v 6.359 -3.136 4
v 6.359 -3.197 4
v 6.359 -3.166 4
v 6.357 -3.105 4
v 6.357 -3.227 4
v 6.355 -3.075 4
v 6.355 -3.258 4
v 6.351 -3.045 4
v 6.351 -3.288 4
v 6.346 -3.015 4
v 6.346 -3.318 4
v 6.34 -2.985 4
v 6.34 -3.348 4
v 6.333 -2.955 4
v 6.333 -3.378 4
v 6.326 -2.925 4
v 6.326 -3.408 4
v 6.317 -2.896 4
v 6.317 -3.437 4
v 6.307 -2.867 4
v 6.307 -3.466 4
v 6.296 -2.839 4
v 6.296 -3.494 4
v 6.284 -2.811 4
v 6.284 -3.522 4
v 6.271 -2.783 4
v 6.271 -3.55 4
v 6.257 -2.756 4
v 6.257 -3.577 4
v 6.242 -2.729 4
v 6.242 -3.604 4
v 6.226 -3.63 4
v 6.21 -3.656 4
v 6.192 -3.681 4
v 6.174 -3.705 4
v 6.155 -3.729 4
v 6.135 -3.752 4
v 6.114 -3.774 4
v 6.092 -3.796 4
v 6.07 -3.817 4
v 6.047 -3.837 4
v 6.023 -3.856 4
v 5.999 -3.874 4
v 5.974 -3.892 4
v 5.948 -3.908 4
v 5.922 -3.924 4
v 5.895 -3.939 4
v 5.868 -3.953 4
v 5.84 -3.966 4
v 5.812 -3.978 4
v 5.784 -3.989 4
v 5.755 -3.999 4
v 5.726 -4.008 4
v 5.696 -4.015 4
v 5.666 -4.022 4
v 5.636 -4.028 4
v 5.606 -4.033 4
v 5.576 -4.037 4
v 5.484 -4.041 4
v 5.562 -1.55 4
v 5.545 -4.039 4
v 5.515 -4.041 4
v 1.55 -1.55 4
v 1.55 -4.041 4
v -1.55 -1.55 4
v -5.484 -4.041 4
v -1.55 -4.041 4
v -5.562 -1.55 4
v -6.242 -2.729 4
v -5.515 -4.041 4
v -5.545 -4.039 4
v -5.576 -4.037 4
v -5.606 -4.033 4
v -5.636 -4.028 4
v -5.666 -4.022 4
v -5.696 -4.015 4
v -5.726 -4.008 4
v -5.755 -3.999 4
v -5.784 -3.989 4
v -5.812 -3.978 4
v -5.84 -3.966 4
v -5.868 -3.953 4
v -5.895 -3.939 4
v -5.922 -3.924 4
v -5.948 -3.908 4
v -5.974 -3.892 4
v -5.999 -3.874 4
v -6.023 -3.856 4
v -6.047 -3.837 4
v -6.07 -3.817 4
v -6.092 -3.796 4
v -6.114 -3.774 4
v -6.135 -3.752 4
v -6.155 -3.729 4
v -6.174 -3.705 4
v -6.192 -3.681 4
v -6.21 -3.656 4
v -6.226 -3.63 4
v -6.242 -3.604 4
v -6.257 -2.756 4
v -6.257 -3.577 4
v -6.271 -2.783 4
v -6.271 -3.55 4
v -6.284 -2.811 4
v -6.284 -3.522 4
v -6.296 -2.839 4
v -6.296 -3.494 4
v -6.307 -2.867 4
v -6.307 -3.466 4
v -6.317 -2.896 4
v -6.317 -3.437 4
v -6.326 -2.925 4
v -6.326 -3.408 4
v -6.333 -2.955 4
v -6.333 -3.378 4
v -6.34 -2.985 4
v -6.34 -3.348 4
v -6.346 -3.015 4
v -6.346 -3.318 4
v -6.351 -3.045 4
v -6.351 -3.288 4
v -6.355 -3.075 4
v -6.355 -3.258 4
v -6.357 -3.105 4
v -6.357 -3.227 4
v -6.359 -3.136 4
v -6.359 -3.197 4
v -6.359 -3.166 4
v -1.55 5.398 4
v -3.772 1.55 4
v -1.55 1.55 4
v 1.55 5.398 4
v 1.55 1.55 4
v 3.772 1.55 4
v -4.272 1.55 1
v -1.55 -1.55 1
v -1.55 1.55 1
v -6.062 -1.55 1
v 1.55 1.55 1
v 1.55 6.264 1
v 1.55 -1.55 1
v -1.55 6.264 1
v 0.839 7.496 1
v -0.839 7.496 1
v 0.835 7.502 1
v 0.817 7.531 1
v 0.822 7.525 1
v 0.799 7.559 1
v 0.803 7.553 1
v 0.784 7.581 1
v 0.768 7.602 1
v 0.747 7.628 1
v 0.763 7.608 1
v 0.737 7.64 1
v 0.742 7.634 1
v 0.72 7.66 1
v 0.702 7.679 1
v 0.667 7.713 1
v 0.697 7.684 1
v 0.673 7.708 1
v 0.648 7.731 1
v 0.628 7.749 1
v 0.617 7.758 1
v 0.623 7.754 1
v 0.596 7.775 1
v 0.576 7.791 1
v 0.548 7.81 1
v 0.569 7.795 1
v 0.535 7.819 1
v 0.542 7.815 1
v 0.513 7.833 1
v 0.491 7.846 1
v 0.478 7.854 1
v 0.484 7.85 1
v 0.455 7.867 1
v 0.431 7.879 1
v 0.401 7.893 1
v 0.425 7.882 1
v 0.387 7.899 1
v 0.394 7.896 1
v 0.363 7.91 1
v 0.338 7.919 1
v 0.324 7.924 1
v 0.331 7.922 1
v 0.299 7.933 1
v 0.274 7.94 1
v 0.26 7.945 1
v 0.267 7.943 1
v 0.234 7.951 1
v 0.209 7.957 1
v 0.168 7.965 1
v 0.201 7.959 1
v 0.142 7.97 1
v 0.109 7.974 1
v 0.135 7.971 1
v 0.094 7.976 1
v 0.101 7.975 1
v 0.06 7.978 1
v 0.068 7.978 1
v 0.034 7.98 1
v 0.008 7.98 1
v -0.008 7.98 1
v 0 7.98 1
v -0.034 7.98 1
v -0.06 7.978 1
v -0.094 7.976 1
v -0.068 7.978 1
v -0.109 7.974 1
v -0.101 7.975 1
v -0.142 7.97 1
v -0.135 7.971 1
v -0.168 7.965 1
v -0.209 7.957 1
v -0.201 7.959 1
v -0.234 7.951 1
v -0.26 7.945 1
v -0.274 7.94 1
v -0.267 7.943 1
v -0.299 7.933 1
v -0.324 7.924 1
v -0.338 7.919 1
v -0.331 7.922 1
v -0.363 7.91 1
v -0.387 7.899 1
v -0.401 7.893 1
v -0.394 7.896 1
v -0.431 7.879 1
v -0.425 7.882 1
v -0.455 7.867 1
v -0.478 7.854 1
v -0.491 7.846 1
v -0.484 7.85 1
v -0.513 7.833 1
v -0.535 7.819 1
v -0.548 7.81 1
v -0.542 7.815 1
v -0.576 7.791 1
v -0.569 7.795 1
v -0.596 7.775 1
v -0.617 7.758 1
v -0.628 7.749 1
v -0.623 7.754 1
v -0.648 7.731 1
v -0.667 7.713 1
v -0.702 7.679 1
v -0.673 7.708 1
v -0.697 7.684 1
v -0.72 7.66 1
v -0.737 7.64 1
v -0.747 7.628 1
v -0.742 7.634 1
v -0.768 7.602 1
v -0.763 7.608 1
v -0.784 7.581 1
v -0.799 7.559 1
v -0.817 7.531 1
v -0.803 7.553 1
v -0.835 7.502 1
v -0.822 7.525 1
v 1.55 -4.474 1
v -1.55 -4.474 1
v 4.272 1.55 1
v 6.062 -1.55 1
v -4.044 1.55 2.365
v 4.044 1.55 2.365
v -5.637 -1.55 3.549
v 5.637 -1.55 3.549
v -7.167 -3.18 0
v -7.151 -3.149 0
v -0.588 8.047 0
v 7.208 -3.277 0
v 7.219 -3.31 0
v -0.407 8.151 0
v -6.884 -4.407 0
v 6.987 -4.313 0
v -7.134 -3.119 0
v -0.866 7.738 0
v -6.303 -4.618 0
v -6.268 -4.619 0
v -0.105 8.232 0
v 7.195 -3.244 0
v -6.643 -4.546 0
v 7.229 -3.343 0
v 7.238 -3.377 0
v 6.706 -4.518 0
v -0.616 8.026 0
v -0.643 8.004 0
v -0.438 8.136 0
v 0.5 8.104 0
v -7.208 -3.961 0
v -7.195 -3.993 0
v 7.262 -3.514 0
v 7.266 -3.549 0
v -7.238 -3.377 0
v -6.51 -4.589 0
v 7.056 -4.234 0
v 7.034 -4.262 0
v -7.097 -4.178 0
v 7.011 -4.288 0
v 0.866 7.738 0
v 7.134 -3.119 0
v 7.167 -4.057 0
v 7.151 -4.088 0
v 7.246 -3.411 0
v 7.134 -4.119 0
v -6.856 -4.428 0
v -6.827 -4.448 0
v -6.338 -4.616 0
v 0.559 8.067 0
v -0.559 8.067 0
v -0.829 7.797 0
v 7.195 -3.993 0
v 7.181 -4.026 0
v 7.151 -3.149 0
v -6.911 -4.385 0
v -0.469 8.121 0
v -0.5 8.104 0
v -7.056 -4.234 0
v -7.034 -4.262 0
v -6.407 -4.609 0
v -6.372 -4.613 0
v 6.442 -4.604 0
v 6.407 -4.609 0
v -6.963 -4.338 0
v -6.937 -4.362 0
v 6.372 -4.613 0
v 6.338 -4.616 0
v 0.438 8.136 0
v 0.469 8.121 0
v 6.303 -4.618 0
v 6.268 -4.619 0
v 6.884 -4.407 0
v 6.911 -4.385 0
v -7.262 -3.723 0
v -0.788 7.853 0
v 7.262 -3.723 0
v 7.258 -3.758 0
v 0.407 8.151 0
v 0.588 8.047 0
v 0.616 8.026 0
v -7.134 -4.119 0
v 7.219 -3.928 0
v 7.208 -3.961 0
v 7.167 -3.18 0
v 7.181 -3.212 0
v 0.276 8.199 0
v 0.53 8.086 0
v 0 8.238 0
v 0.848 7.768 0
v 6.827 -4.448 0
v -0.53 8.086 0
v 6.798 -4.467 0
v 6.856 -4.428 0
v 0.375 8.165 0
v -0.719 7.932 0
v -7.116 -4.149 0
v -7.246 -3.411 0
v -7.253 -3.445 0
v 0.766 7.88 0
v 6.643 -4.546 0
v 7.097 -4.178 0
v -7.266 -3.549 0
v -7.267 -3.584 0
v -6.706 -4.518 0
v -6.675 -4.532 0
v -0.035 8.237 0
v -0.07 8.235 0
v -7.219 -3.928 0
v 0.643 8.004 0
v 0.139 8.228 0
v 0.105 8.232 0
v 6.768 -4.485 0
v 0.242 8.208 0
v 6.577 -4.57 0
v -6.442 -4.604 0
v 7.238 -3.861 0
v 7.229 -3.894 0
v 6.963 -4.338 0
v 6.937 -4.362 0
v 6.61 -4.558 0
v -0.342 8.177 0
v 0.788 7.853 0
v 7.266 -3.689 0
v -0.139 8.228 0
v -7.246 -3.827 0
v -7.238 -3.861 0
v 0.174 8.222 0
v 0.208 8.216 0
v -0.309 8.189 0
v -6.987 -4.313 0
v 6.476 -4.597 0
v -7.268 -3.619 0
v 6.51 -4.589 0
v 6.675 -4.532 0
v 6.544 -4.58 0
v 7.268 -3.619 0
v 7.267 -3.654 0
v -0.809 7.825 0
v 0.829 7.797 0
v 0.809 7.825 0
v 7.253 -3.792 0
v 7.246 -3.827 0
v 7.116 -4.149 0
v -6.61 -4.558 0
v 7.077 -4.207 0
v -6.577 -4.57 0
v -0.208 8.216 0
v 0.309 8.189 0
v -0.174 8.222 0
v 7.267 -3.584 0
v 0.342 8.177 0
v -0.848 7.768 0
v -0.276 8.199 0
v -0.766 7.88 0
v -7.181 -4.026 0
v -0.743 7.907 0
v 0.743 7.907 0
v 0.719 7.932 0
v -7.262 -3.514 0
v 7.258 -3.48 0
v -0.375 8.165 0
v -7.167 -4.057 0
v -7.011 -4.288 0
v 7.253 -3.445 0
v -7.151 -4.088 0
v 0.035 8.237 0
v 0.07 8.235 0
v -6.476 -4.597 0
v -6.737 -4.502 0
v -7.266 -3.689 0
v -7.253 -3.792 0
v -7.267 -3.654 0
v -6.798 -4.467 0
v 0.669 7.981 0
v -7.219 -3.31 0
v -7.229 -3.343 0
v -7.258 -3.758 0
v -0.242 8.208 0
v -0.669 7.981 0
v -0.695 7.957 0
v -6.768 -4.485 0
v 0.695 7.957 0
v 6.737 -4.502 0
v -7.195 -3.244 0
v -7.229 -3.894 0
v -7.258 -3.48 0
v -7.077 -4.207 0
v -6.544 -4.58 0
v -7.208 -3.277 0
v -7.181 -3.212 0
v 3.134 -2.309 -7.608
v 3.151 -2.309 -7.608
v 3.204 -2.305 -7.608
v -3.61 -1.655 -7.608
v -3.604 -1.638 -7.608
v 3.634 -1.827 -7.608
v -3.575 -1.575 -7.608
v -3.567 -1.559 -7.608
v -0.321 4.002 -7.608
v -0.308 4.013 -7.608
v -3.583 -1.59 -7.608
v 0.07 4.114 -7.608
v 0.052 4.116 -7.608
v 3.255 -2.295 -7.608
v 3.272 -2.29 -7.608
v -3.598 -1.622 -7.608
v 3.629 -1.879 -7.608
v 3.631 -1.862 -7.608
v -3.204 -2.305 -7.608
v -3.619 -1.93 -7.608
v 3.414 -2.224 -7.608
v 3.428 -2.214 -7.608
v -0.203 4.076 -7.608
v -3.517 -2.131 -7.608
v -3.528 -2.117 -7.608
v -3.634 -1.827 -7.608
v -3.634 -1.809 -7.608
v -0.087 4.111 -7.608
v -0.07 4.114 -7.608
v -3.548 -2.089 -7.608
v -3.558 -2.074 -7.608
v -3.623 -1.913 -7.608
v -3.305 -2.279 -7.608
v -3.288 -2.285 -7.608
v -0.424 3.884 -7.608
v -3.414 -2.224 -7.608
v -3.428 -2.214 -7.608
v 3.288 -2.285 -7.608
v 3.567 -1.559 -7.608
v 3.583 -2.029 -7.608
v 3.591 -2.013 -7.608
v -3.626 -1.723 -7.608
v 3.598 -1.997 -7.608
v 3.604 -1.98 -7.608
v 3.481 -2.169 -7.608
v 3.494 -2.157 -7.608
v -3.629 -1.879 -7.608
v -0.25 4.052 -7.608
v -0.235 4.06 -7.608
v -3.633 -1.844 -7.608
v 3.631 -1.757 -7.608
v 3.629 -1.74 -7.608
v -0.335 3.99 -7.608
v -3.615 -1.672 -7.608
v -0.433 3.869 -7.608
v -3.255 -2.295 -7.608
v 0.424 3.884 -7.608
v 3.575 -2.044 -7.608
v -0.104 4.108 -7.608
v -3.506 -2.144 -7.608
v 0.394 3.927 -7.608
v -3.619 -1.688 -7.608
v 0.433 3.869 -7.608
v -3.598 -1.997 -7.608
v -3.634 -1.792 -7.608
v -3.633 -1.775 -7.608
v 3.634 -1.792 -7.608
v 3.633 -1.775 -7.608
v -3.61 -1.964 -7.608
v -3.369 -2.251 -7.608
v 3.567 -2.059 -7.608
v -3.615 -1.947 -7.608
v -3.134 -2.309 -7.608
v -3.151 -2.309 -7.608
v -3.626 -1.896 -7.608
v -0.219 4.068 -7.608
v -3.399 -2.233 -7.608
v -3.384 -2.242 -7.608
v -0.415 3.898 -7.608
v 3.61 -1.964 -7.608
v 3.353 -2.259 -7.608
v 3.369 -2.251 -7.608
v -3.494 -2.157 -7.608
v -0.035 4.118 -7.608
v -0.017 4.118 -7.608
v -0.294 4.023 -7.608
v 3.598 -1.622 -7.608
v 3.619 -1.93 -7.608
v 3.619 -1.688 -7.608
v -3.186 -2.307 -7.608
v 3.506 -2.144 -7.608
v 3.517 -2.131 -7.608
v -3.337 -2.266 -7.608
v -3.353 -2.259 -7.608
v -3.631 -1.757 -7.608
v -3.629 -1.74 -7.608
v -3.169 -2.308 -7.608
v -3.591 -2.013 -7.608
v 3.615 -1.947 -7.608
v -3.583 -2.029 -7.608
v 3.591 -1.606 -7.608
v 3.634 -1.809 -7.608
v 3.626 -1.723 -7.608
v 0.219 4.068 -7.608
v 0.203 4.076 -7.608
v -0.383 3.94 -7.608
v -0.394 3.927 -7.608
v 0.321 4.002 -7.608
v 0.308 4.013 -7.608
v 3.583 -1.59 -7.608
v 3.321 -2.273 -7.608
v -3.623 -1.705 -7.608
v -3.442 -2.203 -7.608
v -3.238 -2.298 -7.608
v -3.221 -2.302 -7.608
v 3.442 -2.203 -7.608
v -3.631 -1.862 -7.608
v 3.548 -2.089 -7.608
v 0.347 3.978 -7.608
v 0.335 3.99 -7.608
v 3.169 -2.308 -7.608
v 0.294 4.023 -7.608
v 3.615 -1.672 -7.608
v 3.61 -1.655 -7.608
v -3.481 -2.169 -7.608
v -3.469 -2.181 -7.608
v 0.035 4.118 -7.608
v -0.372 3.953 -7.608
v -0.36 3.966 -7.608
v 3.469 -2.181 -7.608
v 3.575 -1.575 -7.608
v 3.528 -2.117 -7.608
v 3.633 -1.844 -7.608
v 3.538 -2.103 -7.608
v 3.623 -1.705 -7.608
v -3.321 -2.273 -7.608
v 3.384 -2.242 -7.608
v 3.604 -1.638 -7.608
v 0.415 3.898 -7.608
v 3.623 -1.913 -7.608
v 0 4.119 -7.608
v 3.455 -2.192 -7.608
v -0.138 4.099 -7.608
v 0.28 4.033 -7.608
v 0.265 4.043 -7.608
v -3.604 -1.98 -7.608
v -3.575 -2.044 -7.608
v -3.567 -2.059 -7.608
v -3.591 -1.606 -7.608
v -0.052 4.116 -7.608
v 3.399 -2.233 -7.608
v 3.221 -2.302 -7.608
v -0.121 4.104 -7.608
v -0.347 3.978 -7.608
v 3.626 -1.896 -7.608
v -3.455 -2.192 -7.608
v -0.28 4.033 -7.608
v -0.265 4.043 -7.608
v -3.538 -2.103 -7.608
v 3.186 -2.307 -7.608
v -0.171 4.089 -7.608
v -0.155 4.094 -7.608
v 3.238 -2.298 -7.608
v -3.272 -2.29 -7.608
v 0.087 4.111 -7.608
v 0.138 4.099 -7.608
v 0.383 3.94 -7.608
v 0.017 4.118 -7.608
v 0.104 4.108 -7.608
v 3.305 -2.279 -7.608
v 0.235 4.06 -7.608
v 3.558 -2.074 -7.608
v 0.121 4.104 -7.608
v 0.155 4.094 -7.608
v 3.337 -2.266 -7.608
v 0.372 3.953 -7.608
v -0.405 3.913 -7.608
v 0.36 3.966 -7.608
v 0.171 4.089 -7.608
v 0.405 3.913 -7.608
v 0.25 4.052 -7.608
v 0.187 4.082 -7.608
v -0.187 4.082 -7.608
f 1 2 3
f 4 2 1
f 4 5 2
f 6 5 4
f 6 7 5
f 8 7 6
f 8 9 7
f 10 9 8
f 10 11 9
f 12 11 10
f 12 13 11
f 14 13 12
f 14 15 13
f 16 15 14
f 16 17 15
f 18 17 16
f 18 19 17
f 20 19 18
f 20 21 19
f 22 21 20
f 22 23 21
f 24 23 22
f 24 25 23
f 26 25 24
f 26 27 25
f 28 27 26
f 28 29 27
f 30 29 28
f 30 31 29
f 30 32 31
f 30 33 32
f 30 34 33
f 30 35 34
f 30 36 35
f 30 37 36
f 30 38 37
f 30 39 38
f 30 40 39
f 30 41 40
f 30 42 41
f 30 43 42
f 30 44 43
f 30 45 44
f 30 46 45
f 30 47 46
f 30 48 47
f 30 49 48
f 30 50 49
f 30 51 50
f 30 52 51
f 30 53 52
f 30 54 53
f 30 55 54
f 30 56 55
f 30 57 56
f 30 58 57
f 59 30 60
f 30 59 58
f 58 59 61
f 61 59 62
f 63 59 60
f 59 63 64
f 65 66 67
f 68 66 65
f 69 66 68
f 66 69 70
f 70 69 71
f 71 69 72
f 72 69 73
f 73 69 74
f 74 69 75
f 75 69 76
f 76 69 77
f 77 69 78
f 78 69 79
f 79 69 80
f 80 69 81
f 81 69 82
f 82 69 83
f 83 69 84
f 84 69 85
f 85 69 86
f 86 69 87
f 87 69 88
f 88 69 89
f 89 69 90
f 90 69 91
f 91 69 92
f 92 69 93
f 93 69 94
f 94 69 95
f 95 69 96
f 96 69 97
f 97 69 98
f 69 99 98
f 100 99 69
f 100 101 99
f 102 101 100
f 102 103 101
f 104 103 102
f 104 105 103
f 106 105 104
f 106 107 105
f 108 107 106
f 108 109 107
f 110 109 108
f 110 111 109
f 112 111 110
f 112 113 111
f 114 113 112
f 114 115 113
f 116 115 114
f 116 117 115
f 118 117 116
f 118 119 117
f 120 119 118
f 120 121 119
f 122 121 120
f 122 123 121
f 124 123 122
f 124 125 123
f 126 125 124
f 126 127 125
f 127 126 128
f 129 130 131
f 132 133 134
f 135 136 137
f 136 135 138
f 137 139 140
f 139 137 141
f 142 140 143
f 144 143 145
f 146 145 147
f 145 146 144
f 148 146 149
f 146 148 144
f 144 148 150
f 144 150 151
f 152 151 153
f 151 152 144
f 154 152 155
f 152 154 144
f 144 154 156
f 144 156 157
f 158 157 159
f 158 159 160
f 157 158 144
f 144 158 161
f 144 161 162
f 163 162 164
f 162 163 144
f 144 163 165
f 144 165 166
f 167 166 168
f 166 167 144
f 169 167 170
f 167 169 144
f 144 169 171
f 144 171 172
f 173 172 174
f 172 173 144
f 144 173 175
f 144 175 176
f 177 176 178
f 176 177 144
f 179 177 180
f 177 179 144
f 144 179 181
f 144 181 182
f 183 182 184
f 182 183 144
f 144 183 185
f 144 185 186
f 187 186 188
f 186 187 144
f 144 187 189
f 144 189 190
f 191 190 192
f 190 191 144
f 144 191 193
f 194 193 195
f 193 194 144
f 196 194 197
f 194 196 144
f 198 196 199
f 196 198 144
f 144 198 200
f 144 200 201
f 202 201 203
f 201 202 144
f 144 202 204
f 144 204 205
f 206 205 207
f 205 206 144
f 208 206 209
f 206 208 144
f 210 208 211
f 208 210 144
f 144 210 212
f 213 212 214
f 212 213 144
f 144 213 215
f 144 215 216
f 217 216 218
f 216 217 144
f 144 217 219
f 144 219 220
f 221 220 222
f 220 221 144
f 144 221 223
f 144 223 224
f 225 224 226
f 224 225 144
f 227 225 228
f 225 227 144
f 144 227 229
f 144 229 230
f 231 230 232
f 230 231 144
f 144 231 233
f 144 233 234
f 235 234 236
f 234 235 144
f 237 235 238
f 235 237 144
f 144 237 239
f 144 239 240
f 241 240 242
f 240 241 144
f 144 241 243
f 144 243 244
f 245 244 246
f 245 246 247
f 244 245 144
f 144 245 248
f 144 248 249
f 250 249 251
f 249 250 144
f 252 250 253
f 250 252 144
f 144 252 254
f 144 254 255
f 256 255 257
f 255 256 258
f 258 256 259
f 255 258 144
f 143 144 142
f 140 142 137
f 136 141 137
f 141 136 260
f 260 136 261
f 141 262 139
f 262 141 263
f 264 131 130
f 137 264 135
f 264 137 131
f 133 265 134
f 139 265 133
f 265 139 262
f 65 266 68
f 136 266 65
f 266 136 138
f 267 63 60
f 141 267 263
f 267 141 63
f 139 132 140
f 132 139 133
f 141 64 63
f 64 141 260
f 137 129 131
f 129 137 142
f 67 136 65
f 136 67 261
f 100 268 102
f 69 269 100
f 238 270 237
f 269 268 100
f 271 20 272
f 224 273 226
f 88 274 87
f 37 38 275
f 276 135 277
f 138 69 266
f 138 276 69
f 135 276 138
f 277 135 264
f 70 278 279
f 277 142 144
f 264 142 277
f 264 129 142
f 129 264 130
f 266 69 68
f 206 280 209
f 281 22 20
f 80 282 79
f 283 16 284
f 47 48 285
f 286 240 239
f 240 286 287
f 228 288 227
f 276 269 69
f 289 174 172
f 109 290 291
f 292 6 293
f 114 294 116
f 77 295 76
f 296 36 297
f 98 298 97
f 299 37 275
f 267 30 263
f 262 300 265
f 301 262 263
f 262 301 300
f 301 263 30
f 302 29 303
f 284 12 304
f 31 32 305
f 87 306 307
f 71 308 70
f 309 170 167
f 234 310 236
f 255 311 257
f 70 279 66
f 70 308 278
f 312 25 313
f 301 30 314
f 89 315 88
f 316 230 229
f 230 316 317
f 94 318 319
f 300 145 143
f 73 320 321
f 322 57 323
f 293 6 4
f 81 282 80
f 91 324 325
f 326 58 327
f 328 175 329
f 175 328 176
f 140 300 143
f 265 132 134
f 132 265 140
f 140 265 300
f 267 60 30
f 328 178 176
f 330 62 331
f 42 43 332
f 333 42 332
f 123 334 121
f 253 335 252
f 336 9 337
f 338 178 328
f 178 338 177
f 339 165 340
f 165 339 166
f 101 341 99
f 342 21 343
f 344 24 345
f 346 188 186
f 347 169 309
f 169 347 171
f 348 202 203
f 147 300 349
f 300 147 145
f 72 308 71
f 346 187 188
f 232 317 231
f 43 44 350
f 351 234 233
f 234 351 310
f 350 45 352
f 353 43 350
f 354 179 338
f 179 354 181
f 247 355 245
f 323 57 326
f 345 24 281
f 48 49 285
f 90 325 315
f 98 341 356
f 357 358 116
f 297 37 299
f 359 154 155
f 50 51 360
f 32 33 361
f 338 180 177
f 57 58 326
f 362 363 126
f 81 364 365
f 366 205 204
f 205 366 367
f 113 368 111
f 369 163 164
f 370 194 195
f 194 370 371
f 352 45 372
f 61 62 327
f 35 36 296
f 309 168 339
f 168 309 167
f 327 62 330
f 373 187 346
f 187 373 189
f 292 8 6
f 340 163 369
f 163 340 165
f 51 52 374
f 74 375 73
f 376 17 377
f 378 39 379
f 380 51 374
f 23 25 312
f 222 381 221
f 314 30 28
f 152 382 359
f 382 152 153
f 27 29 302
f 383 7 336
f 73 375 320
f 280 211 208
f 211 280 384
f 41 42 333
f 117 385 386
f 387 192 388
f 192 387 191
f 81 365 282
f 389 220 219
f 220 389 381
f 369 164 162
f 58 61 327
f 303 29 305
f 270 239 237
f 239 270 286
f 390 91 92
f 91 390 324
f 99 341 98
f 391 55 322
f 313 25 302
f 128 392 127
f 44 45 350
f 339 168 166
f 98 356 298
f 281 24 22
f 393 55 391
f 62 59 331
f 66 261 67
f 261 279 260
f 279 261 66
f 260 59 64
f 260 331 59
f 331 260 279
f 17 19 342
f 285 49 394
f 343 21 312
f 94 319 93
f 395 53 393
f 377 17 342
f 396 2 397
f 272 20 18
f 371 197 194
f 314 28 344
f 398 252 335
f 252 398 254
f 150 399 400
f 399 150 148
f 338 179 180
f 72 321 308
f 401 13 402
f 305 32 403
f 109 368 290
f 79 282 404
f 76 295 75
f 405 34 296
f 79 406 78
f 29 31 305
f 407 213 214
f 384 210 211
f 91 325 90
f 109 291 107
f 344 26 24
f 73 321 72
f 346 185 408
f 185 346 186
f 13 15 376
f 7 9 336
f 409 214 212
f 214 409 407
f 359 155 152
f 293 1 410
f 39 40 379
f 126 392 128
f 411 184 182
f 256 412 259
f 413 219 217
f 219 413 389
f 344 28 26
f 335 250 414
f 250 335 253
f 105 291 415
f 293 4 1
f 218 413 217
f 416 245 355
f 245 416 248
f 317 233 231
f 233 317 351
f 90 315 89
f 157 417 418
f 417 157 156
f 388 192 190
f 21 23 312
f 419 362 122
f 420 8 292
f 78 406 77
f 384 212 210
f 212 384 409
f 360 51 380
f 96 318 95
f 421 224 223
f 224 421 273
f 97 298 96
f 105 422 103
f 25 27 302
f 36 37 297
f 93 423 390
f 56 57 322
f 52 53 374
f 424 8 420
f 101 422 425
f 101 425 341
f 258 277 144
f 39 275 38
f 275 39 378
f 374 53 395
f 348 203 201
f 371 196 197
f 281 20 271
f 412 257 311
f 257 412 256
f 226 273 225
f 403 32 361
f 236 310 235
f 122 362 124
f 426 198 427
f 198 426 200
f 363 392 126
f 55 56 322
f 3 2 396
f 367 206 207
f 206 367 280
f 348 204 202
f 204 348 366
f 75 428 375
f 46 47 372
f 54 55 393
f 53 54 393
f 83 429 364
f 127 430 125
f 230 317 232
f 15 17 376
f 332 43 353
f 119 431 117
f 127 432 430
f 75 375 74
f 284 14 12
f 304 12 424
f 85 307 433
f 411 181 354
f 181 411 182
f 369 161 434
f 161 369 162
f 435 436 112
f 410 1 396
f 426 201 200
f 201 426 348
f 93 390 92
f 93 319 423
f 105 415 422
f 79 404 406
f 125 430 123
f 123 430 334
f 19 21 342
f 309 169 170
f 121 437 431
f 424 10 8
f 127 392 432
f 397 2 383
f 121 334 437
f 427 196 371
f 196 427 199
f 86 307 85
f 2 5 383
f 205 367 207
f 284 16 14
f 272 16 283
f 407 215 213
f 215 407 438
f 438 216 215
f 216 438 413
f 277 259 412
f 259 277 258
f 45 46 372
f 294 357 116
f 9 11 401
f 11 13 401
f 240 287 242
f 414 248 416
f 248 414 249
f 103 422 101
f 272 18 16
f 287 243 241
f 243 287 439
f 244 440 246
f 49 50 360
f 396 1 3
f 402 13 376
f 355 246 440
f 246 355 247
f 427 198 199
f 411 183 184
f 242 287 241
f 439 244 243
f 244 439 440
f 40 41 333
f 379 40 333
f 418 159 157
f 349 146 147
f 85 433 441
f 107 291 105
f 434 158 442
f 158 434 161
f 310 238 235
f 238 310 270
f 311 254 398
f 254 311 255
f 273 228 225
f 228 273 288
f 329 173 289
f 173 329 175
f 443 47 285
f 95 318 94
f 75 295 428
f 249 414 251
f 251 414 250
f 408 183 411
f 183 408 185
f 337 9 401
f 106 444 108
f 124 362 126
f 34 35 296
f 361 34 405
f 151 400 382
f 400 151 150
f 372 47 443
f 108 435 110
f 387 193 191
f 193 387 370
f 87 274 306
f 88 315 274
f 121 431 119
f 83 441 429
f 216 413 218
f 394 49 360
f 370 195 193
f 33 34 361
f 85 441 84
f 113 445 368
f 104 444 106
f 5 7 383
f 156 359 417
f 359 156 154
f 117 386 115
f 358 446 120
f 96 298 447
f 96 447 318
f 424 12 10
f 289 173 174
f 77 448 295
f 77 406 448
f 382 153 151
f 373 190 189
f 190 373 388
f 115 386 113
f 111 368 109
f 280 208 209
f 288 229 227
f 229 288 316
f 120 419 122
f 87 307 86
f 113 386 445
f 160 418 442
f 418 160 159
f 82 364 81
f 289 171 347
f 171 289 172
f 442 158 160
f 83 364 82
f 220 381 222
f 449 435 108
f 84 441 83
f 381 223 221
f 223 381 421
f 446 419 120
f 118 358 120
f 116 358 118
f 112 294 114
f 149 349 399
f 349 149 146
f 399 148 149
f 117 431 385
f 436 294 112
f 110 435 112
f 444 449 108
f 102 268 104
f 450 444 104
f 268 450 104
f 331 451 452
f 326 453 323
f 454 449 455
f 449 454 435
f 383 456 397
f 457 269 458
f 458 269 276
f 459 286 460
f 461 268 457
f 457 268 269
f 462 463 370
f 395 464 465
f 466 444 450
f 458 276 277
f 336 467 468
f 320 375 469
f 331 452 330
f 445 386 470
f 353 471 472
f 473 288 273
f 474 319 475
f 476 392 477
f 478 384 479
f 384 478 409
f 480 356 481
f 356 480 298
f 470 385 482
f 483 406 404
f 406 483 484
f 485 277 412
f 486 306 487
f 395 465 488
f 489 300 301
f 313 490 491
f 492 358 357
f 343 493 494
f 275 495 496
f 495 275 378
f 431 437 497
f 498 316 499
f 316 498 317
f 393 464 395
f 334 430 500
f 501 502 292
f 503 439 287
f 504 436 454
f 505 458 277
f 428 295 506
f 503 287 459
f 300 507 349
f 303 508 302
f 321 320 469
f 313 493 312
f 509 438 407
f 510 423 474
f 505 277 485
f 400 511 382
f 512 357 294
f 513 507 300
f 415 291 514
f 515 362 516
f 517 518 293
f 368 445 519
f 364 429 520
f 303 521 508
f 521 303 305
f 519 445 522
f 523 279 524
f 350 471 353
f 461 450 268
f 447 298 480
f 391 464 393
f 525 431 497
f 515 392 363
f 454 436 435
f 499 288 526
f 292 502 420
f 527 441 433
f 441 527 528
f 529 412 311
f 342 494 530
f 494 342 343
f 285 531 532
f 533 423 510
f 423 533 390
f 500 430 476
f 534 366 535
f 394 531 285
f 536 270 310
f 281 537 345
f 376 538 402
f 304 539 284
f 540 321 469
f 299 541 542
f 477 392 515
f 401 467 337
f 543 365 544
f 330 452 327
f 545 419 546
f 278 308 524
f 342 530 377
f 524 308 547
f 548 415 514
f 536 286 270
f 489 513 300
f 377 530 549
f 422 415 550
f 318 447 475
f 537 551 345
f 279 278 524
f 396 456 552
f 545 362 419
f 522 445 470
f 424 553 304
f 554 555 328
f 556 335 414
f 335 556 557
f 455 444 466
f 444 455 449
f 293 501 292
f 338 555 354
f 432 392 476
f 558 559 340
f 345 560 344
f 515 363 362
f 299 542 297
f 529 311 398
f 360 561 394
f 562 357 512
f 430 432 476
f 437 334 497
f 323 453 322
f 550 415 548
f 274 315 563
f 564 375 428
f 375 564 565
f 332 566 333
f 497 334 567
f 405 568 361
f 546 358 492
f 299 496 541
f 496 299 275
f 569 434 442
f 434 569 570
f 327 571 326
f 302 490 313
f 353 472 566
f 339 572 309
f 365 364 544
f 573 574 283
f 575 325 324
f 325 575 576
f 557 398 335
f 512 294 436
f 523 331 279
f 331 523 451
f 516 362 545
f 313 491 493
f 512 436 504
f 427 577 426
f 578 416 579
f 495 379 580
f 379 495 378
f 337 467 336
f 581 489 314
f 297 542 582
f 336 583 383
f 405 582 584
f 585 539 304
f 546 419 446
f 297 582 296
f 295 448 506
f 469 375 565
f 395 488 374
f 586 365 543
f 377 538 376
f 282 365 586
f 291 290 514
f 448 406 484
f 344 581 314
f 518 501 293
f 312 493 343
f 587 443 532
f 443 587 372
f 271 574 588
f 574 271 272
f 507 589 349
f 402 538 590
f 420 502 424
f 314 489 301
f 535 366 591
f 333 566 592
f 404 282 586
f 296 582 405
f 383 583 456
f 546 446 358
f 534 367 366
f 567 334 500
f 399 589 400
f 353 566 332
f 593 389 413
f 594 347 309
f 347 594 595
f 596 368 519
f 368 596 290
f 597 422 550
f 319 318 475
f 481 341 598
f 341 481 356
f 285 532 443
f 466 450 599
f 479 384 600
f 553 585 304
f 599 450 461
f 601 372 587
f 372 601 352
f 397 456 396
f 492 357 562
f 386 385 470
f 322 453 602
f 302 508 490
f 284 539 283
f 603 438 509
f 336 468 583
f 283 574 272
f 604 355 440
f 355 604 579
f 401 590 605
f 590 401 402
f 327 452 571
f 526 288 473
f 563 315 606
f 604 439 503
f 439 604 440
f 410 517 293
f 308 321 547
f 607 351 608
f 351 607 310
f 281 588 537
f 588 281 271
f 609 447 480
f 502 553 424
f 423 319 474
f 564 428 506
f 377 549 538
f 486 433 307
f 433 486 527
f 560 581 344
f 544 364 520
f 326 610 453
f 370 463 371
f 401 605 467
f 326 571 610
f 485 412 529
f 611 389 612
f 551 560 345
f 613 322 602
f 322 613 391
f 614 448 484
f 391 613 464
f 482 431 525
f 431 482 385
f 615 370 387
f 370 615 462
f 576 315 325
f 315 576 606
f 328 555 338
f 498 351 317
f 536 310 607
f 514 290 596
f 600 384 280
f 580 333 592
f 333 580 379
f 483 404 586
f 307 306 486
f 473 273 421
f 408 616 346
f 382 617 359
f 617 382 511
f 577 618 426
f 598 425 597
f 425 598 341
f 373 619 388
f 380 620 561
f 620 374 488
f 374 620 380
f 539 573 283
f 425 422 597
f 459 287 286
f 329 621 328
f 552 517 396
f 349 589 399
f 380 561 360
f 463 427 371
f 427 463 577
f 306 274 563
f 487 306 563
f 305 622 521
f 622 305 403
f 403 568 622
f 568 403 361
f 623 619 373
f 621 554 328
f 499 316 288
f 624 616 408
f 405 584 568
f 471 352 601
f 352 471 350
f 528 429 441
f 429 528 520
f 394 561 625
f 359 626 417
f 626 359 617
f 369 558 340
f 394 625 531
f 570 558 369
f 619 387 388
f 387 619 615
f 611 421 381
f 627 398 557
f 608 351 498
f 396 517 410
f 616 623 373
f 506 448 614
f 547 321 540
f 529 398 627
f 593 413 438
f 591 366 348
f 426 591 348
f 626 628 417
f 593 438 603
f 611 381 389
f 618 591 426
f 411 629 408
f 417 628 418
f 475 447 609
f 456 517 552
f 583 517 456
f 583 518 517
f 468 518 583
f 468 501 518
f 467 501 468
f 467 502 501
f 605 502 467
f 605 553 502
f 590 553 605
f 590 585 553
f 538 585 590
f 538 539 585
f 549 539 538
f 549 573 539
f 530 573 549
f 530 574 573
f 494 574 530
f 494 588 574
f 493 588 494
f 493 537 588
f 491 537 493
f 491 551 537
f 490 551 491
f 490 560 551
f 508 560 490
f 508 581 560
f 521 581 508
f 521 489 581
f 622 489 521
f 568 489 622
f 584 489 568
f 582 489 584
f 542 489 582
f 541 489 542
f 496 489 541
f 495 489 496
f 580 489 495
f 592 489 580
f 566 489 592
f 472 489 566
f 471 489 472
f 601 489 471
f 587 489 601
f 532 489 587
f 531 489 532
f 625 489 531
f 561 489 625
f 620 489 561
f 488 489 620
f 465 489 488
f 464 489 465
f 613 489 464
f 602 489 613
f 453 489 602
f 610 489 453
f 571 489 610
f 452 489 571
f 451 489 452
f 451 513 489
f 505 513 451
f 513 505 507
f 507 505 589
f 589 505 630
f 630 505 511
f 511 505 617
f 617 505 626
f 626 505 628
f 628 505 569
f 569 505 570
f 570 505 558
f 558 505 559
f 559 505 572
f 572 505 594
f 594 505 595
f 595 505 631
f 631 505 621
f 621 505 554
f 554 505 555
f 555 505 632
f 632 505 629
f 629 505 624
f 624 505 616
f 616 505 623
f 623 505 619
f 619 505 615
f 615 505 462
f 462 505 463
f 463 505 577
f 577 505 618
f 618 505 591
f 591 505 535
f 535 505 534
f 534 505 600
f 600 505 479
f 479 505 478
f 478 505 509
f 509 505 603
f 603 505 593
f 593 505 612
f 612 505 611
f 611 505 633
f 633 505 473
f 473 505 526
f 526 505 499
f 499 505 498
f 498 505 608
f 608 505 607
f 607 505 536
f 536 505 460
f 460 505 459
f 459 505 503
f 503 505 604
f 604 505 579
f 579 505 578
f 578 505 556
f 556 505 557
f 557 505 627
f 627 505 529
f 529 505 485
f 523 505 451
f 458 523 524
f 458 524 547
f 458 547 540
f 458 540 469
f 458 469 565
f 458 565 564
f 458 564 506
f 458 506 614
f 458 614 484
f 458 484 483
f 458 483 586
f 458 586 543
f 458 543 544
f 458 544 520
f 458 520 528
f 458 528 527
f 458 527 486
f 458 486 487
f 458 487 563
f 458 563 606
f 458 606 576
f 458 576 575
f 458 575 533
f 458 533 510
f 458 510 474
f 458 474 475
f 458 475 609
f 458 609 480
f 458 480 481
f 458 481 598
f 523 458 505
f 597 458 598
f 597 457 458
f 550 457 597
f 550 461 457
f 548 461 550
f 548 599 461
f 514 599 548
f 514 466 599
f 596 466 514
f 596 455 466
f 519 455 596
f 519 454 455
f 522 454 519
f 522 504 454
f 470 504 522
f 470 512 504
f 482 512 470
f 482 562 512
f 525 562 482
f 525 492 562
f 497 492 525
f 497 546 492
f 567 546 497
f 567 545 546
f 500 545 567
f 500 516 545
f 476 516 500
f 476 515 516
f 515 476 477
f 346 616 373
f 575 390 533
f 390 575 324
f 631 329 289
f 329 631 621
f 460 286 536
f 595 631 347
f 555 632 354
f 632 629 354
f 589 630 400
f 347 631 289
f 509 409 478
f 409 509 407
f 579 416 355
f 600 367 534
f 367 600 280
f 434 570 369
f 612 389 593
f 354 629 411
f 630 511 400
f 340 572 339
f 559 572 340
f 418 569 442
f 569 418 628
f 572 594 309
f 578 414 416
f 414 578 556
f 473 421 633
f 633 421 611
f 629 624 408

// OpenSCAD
m   = 1;                      // minkowski radius
phi = (1 + sqrt(5))/2;        // golden ratio

b = 3.1;                      // board thickness
l = 3;                        // clip wall depth

h = 32;                       // Height of spike
j = 4;                        // Height of clip spike
x = h/j;                      // clip ratio for spike
e = 16;                       // Edge length of a spike
R = e/sqrt(3);                // radius equilateral triangle

s = phi^2 * e / 2 / sqrt(3);  // inscribed sphere in icosahedron
c = e*sqrt(phi*sqrt(5))/2;    // circumscribed sphere icosahedron

// m/cos(60) is the length of the hypotenuse of the triangle
// eminating from the point of the triangle
r = R - m/cos(60);
v = [[0,r], [-r*cos(30),-r*sin(30)], [r*cos(30),-r*sin(30)]];

mirror([0,0,1])
  linear_extrude(height=0.5*c,scale=0.5)
    minkowski(){
      polygon(v);
      circle(r = m, $fn=180);
    }

difference(){
  linear_extrude(height=h/x,scale=1-1/x)
    minkowski(){
      polygon(v);
      circle(r = m, $fn=180);
    }
    
  translate([0,0,j-l/2]) {
    cube([2*(r+m),b,l], center=true);
    cube([b,2*(r+m),l], center=true);
  }
}
